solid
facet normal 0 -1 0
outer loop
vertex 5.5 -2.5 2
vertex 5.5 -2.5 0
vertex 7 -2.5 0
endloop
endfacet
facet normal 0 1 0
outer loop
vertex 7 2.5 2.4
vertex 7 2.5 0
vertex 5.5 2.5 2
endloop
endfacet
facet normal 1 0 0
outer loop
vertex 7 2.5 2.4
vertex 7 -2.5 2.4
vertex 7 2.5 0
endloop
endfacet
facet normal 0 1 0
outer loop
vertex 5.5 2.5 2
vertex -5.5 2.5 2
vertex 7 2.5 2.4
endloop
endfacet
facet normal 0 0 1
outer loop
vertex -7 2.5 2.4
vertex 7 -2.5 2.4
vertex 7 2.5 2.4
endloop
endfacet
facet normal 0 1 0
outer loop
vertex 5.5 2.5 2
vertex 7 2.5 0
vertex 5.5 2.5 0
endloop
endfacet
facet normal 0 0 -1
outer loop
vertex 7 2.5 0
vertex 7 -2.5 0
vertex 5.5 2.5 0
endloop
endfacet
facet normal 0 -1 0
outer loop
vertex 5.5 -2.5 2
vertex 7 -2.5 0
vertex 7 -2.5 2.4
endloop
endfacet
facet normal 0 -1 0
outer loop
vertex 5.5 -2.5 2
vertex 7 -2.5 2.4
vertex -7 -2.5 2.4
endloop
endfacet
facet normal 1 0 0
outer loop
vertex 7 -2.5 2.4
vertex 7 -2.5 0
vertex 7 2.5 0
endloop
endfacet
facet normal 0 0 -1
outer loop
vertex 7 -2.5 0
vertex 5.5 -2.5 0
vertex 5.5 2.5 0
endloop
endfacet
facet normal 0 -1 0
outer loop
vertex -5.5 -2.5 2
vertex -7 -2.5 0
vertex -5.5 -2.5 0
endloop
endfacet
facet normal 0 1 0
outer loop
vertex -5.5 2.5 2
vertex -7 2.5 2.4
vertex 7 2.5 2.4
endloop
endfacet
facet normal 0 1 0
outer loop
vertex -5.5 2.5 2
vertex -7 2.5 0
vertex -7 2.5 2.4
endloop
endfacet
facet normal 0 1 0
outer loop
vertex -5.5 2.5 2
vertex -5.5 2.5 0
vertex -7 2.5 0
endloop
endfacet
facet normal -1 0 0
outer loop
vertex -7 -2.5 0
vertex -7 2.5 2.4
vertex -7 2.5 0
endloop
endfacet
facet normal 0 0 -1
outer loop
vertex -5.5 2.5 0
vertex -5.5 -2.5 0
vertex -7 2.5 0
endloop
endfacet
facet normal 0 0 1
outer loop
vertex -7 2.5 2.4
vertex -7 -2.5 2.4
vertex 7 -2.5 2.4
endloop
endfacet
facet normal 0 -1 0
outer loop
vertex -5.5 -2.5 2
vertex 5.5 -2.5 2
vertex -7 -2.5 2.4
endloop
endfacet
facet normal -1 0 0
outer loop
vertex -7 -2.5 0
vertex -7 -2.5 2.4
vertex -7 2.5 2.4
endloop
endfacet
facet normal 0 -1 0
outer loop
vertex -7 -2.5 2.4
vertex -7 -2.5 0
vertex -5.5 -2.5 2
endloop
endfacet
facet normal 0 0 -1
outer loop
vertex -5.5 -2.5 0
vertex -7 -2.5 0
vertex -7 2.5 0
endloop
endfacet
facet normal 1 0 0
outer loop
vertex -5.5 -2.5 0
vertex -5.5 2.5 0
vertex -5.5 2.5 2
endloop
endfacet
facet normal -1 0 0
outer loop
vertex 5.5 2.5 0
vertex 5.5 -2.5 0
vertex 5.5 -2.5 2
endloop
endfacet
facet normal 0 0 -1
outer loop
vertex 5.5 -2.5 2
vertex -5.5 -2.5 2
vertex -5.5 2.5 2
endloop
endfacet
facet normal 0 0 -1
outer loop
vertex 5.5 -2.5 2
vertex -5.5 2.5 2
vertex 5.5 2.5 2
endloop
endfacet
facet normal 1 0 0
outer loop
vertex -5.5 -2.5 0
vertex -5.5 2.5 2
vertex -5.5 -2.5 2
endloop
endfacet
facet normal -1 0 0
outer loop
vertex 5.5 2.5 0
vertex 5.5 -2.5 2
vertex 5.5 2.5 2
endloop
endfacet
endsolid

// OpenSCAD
include<BOSL/transforms.scad>
include<BOSL/shapes.scad>

w = 14;
d = 5;
h = 2.4;
inner_w = w - 3;
inner_h = 2;

render() difference() {
	cuboid([w, d, h], align = V_TOP);
	cuboid([inner_w, d, inner_h], align = V_TOP);
}
